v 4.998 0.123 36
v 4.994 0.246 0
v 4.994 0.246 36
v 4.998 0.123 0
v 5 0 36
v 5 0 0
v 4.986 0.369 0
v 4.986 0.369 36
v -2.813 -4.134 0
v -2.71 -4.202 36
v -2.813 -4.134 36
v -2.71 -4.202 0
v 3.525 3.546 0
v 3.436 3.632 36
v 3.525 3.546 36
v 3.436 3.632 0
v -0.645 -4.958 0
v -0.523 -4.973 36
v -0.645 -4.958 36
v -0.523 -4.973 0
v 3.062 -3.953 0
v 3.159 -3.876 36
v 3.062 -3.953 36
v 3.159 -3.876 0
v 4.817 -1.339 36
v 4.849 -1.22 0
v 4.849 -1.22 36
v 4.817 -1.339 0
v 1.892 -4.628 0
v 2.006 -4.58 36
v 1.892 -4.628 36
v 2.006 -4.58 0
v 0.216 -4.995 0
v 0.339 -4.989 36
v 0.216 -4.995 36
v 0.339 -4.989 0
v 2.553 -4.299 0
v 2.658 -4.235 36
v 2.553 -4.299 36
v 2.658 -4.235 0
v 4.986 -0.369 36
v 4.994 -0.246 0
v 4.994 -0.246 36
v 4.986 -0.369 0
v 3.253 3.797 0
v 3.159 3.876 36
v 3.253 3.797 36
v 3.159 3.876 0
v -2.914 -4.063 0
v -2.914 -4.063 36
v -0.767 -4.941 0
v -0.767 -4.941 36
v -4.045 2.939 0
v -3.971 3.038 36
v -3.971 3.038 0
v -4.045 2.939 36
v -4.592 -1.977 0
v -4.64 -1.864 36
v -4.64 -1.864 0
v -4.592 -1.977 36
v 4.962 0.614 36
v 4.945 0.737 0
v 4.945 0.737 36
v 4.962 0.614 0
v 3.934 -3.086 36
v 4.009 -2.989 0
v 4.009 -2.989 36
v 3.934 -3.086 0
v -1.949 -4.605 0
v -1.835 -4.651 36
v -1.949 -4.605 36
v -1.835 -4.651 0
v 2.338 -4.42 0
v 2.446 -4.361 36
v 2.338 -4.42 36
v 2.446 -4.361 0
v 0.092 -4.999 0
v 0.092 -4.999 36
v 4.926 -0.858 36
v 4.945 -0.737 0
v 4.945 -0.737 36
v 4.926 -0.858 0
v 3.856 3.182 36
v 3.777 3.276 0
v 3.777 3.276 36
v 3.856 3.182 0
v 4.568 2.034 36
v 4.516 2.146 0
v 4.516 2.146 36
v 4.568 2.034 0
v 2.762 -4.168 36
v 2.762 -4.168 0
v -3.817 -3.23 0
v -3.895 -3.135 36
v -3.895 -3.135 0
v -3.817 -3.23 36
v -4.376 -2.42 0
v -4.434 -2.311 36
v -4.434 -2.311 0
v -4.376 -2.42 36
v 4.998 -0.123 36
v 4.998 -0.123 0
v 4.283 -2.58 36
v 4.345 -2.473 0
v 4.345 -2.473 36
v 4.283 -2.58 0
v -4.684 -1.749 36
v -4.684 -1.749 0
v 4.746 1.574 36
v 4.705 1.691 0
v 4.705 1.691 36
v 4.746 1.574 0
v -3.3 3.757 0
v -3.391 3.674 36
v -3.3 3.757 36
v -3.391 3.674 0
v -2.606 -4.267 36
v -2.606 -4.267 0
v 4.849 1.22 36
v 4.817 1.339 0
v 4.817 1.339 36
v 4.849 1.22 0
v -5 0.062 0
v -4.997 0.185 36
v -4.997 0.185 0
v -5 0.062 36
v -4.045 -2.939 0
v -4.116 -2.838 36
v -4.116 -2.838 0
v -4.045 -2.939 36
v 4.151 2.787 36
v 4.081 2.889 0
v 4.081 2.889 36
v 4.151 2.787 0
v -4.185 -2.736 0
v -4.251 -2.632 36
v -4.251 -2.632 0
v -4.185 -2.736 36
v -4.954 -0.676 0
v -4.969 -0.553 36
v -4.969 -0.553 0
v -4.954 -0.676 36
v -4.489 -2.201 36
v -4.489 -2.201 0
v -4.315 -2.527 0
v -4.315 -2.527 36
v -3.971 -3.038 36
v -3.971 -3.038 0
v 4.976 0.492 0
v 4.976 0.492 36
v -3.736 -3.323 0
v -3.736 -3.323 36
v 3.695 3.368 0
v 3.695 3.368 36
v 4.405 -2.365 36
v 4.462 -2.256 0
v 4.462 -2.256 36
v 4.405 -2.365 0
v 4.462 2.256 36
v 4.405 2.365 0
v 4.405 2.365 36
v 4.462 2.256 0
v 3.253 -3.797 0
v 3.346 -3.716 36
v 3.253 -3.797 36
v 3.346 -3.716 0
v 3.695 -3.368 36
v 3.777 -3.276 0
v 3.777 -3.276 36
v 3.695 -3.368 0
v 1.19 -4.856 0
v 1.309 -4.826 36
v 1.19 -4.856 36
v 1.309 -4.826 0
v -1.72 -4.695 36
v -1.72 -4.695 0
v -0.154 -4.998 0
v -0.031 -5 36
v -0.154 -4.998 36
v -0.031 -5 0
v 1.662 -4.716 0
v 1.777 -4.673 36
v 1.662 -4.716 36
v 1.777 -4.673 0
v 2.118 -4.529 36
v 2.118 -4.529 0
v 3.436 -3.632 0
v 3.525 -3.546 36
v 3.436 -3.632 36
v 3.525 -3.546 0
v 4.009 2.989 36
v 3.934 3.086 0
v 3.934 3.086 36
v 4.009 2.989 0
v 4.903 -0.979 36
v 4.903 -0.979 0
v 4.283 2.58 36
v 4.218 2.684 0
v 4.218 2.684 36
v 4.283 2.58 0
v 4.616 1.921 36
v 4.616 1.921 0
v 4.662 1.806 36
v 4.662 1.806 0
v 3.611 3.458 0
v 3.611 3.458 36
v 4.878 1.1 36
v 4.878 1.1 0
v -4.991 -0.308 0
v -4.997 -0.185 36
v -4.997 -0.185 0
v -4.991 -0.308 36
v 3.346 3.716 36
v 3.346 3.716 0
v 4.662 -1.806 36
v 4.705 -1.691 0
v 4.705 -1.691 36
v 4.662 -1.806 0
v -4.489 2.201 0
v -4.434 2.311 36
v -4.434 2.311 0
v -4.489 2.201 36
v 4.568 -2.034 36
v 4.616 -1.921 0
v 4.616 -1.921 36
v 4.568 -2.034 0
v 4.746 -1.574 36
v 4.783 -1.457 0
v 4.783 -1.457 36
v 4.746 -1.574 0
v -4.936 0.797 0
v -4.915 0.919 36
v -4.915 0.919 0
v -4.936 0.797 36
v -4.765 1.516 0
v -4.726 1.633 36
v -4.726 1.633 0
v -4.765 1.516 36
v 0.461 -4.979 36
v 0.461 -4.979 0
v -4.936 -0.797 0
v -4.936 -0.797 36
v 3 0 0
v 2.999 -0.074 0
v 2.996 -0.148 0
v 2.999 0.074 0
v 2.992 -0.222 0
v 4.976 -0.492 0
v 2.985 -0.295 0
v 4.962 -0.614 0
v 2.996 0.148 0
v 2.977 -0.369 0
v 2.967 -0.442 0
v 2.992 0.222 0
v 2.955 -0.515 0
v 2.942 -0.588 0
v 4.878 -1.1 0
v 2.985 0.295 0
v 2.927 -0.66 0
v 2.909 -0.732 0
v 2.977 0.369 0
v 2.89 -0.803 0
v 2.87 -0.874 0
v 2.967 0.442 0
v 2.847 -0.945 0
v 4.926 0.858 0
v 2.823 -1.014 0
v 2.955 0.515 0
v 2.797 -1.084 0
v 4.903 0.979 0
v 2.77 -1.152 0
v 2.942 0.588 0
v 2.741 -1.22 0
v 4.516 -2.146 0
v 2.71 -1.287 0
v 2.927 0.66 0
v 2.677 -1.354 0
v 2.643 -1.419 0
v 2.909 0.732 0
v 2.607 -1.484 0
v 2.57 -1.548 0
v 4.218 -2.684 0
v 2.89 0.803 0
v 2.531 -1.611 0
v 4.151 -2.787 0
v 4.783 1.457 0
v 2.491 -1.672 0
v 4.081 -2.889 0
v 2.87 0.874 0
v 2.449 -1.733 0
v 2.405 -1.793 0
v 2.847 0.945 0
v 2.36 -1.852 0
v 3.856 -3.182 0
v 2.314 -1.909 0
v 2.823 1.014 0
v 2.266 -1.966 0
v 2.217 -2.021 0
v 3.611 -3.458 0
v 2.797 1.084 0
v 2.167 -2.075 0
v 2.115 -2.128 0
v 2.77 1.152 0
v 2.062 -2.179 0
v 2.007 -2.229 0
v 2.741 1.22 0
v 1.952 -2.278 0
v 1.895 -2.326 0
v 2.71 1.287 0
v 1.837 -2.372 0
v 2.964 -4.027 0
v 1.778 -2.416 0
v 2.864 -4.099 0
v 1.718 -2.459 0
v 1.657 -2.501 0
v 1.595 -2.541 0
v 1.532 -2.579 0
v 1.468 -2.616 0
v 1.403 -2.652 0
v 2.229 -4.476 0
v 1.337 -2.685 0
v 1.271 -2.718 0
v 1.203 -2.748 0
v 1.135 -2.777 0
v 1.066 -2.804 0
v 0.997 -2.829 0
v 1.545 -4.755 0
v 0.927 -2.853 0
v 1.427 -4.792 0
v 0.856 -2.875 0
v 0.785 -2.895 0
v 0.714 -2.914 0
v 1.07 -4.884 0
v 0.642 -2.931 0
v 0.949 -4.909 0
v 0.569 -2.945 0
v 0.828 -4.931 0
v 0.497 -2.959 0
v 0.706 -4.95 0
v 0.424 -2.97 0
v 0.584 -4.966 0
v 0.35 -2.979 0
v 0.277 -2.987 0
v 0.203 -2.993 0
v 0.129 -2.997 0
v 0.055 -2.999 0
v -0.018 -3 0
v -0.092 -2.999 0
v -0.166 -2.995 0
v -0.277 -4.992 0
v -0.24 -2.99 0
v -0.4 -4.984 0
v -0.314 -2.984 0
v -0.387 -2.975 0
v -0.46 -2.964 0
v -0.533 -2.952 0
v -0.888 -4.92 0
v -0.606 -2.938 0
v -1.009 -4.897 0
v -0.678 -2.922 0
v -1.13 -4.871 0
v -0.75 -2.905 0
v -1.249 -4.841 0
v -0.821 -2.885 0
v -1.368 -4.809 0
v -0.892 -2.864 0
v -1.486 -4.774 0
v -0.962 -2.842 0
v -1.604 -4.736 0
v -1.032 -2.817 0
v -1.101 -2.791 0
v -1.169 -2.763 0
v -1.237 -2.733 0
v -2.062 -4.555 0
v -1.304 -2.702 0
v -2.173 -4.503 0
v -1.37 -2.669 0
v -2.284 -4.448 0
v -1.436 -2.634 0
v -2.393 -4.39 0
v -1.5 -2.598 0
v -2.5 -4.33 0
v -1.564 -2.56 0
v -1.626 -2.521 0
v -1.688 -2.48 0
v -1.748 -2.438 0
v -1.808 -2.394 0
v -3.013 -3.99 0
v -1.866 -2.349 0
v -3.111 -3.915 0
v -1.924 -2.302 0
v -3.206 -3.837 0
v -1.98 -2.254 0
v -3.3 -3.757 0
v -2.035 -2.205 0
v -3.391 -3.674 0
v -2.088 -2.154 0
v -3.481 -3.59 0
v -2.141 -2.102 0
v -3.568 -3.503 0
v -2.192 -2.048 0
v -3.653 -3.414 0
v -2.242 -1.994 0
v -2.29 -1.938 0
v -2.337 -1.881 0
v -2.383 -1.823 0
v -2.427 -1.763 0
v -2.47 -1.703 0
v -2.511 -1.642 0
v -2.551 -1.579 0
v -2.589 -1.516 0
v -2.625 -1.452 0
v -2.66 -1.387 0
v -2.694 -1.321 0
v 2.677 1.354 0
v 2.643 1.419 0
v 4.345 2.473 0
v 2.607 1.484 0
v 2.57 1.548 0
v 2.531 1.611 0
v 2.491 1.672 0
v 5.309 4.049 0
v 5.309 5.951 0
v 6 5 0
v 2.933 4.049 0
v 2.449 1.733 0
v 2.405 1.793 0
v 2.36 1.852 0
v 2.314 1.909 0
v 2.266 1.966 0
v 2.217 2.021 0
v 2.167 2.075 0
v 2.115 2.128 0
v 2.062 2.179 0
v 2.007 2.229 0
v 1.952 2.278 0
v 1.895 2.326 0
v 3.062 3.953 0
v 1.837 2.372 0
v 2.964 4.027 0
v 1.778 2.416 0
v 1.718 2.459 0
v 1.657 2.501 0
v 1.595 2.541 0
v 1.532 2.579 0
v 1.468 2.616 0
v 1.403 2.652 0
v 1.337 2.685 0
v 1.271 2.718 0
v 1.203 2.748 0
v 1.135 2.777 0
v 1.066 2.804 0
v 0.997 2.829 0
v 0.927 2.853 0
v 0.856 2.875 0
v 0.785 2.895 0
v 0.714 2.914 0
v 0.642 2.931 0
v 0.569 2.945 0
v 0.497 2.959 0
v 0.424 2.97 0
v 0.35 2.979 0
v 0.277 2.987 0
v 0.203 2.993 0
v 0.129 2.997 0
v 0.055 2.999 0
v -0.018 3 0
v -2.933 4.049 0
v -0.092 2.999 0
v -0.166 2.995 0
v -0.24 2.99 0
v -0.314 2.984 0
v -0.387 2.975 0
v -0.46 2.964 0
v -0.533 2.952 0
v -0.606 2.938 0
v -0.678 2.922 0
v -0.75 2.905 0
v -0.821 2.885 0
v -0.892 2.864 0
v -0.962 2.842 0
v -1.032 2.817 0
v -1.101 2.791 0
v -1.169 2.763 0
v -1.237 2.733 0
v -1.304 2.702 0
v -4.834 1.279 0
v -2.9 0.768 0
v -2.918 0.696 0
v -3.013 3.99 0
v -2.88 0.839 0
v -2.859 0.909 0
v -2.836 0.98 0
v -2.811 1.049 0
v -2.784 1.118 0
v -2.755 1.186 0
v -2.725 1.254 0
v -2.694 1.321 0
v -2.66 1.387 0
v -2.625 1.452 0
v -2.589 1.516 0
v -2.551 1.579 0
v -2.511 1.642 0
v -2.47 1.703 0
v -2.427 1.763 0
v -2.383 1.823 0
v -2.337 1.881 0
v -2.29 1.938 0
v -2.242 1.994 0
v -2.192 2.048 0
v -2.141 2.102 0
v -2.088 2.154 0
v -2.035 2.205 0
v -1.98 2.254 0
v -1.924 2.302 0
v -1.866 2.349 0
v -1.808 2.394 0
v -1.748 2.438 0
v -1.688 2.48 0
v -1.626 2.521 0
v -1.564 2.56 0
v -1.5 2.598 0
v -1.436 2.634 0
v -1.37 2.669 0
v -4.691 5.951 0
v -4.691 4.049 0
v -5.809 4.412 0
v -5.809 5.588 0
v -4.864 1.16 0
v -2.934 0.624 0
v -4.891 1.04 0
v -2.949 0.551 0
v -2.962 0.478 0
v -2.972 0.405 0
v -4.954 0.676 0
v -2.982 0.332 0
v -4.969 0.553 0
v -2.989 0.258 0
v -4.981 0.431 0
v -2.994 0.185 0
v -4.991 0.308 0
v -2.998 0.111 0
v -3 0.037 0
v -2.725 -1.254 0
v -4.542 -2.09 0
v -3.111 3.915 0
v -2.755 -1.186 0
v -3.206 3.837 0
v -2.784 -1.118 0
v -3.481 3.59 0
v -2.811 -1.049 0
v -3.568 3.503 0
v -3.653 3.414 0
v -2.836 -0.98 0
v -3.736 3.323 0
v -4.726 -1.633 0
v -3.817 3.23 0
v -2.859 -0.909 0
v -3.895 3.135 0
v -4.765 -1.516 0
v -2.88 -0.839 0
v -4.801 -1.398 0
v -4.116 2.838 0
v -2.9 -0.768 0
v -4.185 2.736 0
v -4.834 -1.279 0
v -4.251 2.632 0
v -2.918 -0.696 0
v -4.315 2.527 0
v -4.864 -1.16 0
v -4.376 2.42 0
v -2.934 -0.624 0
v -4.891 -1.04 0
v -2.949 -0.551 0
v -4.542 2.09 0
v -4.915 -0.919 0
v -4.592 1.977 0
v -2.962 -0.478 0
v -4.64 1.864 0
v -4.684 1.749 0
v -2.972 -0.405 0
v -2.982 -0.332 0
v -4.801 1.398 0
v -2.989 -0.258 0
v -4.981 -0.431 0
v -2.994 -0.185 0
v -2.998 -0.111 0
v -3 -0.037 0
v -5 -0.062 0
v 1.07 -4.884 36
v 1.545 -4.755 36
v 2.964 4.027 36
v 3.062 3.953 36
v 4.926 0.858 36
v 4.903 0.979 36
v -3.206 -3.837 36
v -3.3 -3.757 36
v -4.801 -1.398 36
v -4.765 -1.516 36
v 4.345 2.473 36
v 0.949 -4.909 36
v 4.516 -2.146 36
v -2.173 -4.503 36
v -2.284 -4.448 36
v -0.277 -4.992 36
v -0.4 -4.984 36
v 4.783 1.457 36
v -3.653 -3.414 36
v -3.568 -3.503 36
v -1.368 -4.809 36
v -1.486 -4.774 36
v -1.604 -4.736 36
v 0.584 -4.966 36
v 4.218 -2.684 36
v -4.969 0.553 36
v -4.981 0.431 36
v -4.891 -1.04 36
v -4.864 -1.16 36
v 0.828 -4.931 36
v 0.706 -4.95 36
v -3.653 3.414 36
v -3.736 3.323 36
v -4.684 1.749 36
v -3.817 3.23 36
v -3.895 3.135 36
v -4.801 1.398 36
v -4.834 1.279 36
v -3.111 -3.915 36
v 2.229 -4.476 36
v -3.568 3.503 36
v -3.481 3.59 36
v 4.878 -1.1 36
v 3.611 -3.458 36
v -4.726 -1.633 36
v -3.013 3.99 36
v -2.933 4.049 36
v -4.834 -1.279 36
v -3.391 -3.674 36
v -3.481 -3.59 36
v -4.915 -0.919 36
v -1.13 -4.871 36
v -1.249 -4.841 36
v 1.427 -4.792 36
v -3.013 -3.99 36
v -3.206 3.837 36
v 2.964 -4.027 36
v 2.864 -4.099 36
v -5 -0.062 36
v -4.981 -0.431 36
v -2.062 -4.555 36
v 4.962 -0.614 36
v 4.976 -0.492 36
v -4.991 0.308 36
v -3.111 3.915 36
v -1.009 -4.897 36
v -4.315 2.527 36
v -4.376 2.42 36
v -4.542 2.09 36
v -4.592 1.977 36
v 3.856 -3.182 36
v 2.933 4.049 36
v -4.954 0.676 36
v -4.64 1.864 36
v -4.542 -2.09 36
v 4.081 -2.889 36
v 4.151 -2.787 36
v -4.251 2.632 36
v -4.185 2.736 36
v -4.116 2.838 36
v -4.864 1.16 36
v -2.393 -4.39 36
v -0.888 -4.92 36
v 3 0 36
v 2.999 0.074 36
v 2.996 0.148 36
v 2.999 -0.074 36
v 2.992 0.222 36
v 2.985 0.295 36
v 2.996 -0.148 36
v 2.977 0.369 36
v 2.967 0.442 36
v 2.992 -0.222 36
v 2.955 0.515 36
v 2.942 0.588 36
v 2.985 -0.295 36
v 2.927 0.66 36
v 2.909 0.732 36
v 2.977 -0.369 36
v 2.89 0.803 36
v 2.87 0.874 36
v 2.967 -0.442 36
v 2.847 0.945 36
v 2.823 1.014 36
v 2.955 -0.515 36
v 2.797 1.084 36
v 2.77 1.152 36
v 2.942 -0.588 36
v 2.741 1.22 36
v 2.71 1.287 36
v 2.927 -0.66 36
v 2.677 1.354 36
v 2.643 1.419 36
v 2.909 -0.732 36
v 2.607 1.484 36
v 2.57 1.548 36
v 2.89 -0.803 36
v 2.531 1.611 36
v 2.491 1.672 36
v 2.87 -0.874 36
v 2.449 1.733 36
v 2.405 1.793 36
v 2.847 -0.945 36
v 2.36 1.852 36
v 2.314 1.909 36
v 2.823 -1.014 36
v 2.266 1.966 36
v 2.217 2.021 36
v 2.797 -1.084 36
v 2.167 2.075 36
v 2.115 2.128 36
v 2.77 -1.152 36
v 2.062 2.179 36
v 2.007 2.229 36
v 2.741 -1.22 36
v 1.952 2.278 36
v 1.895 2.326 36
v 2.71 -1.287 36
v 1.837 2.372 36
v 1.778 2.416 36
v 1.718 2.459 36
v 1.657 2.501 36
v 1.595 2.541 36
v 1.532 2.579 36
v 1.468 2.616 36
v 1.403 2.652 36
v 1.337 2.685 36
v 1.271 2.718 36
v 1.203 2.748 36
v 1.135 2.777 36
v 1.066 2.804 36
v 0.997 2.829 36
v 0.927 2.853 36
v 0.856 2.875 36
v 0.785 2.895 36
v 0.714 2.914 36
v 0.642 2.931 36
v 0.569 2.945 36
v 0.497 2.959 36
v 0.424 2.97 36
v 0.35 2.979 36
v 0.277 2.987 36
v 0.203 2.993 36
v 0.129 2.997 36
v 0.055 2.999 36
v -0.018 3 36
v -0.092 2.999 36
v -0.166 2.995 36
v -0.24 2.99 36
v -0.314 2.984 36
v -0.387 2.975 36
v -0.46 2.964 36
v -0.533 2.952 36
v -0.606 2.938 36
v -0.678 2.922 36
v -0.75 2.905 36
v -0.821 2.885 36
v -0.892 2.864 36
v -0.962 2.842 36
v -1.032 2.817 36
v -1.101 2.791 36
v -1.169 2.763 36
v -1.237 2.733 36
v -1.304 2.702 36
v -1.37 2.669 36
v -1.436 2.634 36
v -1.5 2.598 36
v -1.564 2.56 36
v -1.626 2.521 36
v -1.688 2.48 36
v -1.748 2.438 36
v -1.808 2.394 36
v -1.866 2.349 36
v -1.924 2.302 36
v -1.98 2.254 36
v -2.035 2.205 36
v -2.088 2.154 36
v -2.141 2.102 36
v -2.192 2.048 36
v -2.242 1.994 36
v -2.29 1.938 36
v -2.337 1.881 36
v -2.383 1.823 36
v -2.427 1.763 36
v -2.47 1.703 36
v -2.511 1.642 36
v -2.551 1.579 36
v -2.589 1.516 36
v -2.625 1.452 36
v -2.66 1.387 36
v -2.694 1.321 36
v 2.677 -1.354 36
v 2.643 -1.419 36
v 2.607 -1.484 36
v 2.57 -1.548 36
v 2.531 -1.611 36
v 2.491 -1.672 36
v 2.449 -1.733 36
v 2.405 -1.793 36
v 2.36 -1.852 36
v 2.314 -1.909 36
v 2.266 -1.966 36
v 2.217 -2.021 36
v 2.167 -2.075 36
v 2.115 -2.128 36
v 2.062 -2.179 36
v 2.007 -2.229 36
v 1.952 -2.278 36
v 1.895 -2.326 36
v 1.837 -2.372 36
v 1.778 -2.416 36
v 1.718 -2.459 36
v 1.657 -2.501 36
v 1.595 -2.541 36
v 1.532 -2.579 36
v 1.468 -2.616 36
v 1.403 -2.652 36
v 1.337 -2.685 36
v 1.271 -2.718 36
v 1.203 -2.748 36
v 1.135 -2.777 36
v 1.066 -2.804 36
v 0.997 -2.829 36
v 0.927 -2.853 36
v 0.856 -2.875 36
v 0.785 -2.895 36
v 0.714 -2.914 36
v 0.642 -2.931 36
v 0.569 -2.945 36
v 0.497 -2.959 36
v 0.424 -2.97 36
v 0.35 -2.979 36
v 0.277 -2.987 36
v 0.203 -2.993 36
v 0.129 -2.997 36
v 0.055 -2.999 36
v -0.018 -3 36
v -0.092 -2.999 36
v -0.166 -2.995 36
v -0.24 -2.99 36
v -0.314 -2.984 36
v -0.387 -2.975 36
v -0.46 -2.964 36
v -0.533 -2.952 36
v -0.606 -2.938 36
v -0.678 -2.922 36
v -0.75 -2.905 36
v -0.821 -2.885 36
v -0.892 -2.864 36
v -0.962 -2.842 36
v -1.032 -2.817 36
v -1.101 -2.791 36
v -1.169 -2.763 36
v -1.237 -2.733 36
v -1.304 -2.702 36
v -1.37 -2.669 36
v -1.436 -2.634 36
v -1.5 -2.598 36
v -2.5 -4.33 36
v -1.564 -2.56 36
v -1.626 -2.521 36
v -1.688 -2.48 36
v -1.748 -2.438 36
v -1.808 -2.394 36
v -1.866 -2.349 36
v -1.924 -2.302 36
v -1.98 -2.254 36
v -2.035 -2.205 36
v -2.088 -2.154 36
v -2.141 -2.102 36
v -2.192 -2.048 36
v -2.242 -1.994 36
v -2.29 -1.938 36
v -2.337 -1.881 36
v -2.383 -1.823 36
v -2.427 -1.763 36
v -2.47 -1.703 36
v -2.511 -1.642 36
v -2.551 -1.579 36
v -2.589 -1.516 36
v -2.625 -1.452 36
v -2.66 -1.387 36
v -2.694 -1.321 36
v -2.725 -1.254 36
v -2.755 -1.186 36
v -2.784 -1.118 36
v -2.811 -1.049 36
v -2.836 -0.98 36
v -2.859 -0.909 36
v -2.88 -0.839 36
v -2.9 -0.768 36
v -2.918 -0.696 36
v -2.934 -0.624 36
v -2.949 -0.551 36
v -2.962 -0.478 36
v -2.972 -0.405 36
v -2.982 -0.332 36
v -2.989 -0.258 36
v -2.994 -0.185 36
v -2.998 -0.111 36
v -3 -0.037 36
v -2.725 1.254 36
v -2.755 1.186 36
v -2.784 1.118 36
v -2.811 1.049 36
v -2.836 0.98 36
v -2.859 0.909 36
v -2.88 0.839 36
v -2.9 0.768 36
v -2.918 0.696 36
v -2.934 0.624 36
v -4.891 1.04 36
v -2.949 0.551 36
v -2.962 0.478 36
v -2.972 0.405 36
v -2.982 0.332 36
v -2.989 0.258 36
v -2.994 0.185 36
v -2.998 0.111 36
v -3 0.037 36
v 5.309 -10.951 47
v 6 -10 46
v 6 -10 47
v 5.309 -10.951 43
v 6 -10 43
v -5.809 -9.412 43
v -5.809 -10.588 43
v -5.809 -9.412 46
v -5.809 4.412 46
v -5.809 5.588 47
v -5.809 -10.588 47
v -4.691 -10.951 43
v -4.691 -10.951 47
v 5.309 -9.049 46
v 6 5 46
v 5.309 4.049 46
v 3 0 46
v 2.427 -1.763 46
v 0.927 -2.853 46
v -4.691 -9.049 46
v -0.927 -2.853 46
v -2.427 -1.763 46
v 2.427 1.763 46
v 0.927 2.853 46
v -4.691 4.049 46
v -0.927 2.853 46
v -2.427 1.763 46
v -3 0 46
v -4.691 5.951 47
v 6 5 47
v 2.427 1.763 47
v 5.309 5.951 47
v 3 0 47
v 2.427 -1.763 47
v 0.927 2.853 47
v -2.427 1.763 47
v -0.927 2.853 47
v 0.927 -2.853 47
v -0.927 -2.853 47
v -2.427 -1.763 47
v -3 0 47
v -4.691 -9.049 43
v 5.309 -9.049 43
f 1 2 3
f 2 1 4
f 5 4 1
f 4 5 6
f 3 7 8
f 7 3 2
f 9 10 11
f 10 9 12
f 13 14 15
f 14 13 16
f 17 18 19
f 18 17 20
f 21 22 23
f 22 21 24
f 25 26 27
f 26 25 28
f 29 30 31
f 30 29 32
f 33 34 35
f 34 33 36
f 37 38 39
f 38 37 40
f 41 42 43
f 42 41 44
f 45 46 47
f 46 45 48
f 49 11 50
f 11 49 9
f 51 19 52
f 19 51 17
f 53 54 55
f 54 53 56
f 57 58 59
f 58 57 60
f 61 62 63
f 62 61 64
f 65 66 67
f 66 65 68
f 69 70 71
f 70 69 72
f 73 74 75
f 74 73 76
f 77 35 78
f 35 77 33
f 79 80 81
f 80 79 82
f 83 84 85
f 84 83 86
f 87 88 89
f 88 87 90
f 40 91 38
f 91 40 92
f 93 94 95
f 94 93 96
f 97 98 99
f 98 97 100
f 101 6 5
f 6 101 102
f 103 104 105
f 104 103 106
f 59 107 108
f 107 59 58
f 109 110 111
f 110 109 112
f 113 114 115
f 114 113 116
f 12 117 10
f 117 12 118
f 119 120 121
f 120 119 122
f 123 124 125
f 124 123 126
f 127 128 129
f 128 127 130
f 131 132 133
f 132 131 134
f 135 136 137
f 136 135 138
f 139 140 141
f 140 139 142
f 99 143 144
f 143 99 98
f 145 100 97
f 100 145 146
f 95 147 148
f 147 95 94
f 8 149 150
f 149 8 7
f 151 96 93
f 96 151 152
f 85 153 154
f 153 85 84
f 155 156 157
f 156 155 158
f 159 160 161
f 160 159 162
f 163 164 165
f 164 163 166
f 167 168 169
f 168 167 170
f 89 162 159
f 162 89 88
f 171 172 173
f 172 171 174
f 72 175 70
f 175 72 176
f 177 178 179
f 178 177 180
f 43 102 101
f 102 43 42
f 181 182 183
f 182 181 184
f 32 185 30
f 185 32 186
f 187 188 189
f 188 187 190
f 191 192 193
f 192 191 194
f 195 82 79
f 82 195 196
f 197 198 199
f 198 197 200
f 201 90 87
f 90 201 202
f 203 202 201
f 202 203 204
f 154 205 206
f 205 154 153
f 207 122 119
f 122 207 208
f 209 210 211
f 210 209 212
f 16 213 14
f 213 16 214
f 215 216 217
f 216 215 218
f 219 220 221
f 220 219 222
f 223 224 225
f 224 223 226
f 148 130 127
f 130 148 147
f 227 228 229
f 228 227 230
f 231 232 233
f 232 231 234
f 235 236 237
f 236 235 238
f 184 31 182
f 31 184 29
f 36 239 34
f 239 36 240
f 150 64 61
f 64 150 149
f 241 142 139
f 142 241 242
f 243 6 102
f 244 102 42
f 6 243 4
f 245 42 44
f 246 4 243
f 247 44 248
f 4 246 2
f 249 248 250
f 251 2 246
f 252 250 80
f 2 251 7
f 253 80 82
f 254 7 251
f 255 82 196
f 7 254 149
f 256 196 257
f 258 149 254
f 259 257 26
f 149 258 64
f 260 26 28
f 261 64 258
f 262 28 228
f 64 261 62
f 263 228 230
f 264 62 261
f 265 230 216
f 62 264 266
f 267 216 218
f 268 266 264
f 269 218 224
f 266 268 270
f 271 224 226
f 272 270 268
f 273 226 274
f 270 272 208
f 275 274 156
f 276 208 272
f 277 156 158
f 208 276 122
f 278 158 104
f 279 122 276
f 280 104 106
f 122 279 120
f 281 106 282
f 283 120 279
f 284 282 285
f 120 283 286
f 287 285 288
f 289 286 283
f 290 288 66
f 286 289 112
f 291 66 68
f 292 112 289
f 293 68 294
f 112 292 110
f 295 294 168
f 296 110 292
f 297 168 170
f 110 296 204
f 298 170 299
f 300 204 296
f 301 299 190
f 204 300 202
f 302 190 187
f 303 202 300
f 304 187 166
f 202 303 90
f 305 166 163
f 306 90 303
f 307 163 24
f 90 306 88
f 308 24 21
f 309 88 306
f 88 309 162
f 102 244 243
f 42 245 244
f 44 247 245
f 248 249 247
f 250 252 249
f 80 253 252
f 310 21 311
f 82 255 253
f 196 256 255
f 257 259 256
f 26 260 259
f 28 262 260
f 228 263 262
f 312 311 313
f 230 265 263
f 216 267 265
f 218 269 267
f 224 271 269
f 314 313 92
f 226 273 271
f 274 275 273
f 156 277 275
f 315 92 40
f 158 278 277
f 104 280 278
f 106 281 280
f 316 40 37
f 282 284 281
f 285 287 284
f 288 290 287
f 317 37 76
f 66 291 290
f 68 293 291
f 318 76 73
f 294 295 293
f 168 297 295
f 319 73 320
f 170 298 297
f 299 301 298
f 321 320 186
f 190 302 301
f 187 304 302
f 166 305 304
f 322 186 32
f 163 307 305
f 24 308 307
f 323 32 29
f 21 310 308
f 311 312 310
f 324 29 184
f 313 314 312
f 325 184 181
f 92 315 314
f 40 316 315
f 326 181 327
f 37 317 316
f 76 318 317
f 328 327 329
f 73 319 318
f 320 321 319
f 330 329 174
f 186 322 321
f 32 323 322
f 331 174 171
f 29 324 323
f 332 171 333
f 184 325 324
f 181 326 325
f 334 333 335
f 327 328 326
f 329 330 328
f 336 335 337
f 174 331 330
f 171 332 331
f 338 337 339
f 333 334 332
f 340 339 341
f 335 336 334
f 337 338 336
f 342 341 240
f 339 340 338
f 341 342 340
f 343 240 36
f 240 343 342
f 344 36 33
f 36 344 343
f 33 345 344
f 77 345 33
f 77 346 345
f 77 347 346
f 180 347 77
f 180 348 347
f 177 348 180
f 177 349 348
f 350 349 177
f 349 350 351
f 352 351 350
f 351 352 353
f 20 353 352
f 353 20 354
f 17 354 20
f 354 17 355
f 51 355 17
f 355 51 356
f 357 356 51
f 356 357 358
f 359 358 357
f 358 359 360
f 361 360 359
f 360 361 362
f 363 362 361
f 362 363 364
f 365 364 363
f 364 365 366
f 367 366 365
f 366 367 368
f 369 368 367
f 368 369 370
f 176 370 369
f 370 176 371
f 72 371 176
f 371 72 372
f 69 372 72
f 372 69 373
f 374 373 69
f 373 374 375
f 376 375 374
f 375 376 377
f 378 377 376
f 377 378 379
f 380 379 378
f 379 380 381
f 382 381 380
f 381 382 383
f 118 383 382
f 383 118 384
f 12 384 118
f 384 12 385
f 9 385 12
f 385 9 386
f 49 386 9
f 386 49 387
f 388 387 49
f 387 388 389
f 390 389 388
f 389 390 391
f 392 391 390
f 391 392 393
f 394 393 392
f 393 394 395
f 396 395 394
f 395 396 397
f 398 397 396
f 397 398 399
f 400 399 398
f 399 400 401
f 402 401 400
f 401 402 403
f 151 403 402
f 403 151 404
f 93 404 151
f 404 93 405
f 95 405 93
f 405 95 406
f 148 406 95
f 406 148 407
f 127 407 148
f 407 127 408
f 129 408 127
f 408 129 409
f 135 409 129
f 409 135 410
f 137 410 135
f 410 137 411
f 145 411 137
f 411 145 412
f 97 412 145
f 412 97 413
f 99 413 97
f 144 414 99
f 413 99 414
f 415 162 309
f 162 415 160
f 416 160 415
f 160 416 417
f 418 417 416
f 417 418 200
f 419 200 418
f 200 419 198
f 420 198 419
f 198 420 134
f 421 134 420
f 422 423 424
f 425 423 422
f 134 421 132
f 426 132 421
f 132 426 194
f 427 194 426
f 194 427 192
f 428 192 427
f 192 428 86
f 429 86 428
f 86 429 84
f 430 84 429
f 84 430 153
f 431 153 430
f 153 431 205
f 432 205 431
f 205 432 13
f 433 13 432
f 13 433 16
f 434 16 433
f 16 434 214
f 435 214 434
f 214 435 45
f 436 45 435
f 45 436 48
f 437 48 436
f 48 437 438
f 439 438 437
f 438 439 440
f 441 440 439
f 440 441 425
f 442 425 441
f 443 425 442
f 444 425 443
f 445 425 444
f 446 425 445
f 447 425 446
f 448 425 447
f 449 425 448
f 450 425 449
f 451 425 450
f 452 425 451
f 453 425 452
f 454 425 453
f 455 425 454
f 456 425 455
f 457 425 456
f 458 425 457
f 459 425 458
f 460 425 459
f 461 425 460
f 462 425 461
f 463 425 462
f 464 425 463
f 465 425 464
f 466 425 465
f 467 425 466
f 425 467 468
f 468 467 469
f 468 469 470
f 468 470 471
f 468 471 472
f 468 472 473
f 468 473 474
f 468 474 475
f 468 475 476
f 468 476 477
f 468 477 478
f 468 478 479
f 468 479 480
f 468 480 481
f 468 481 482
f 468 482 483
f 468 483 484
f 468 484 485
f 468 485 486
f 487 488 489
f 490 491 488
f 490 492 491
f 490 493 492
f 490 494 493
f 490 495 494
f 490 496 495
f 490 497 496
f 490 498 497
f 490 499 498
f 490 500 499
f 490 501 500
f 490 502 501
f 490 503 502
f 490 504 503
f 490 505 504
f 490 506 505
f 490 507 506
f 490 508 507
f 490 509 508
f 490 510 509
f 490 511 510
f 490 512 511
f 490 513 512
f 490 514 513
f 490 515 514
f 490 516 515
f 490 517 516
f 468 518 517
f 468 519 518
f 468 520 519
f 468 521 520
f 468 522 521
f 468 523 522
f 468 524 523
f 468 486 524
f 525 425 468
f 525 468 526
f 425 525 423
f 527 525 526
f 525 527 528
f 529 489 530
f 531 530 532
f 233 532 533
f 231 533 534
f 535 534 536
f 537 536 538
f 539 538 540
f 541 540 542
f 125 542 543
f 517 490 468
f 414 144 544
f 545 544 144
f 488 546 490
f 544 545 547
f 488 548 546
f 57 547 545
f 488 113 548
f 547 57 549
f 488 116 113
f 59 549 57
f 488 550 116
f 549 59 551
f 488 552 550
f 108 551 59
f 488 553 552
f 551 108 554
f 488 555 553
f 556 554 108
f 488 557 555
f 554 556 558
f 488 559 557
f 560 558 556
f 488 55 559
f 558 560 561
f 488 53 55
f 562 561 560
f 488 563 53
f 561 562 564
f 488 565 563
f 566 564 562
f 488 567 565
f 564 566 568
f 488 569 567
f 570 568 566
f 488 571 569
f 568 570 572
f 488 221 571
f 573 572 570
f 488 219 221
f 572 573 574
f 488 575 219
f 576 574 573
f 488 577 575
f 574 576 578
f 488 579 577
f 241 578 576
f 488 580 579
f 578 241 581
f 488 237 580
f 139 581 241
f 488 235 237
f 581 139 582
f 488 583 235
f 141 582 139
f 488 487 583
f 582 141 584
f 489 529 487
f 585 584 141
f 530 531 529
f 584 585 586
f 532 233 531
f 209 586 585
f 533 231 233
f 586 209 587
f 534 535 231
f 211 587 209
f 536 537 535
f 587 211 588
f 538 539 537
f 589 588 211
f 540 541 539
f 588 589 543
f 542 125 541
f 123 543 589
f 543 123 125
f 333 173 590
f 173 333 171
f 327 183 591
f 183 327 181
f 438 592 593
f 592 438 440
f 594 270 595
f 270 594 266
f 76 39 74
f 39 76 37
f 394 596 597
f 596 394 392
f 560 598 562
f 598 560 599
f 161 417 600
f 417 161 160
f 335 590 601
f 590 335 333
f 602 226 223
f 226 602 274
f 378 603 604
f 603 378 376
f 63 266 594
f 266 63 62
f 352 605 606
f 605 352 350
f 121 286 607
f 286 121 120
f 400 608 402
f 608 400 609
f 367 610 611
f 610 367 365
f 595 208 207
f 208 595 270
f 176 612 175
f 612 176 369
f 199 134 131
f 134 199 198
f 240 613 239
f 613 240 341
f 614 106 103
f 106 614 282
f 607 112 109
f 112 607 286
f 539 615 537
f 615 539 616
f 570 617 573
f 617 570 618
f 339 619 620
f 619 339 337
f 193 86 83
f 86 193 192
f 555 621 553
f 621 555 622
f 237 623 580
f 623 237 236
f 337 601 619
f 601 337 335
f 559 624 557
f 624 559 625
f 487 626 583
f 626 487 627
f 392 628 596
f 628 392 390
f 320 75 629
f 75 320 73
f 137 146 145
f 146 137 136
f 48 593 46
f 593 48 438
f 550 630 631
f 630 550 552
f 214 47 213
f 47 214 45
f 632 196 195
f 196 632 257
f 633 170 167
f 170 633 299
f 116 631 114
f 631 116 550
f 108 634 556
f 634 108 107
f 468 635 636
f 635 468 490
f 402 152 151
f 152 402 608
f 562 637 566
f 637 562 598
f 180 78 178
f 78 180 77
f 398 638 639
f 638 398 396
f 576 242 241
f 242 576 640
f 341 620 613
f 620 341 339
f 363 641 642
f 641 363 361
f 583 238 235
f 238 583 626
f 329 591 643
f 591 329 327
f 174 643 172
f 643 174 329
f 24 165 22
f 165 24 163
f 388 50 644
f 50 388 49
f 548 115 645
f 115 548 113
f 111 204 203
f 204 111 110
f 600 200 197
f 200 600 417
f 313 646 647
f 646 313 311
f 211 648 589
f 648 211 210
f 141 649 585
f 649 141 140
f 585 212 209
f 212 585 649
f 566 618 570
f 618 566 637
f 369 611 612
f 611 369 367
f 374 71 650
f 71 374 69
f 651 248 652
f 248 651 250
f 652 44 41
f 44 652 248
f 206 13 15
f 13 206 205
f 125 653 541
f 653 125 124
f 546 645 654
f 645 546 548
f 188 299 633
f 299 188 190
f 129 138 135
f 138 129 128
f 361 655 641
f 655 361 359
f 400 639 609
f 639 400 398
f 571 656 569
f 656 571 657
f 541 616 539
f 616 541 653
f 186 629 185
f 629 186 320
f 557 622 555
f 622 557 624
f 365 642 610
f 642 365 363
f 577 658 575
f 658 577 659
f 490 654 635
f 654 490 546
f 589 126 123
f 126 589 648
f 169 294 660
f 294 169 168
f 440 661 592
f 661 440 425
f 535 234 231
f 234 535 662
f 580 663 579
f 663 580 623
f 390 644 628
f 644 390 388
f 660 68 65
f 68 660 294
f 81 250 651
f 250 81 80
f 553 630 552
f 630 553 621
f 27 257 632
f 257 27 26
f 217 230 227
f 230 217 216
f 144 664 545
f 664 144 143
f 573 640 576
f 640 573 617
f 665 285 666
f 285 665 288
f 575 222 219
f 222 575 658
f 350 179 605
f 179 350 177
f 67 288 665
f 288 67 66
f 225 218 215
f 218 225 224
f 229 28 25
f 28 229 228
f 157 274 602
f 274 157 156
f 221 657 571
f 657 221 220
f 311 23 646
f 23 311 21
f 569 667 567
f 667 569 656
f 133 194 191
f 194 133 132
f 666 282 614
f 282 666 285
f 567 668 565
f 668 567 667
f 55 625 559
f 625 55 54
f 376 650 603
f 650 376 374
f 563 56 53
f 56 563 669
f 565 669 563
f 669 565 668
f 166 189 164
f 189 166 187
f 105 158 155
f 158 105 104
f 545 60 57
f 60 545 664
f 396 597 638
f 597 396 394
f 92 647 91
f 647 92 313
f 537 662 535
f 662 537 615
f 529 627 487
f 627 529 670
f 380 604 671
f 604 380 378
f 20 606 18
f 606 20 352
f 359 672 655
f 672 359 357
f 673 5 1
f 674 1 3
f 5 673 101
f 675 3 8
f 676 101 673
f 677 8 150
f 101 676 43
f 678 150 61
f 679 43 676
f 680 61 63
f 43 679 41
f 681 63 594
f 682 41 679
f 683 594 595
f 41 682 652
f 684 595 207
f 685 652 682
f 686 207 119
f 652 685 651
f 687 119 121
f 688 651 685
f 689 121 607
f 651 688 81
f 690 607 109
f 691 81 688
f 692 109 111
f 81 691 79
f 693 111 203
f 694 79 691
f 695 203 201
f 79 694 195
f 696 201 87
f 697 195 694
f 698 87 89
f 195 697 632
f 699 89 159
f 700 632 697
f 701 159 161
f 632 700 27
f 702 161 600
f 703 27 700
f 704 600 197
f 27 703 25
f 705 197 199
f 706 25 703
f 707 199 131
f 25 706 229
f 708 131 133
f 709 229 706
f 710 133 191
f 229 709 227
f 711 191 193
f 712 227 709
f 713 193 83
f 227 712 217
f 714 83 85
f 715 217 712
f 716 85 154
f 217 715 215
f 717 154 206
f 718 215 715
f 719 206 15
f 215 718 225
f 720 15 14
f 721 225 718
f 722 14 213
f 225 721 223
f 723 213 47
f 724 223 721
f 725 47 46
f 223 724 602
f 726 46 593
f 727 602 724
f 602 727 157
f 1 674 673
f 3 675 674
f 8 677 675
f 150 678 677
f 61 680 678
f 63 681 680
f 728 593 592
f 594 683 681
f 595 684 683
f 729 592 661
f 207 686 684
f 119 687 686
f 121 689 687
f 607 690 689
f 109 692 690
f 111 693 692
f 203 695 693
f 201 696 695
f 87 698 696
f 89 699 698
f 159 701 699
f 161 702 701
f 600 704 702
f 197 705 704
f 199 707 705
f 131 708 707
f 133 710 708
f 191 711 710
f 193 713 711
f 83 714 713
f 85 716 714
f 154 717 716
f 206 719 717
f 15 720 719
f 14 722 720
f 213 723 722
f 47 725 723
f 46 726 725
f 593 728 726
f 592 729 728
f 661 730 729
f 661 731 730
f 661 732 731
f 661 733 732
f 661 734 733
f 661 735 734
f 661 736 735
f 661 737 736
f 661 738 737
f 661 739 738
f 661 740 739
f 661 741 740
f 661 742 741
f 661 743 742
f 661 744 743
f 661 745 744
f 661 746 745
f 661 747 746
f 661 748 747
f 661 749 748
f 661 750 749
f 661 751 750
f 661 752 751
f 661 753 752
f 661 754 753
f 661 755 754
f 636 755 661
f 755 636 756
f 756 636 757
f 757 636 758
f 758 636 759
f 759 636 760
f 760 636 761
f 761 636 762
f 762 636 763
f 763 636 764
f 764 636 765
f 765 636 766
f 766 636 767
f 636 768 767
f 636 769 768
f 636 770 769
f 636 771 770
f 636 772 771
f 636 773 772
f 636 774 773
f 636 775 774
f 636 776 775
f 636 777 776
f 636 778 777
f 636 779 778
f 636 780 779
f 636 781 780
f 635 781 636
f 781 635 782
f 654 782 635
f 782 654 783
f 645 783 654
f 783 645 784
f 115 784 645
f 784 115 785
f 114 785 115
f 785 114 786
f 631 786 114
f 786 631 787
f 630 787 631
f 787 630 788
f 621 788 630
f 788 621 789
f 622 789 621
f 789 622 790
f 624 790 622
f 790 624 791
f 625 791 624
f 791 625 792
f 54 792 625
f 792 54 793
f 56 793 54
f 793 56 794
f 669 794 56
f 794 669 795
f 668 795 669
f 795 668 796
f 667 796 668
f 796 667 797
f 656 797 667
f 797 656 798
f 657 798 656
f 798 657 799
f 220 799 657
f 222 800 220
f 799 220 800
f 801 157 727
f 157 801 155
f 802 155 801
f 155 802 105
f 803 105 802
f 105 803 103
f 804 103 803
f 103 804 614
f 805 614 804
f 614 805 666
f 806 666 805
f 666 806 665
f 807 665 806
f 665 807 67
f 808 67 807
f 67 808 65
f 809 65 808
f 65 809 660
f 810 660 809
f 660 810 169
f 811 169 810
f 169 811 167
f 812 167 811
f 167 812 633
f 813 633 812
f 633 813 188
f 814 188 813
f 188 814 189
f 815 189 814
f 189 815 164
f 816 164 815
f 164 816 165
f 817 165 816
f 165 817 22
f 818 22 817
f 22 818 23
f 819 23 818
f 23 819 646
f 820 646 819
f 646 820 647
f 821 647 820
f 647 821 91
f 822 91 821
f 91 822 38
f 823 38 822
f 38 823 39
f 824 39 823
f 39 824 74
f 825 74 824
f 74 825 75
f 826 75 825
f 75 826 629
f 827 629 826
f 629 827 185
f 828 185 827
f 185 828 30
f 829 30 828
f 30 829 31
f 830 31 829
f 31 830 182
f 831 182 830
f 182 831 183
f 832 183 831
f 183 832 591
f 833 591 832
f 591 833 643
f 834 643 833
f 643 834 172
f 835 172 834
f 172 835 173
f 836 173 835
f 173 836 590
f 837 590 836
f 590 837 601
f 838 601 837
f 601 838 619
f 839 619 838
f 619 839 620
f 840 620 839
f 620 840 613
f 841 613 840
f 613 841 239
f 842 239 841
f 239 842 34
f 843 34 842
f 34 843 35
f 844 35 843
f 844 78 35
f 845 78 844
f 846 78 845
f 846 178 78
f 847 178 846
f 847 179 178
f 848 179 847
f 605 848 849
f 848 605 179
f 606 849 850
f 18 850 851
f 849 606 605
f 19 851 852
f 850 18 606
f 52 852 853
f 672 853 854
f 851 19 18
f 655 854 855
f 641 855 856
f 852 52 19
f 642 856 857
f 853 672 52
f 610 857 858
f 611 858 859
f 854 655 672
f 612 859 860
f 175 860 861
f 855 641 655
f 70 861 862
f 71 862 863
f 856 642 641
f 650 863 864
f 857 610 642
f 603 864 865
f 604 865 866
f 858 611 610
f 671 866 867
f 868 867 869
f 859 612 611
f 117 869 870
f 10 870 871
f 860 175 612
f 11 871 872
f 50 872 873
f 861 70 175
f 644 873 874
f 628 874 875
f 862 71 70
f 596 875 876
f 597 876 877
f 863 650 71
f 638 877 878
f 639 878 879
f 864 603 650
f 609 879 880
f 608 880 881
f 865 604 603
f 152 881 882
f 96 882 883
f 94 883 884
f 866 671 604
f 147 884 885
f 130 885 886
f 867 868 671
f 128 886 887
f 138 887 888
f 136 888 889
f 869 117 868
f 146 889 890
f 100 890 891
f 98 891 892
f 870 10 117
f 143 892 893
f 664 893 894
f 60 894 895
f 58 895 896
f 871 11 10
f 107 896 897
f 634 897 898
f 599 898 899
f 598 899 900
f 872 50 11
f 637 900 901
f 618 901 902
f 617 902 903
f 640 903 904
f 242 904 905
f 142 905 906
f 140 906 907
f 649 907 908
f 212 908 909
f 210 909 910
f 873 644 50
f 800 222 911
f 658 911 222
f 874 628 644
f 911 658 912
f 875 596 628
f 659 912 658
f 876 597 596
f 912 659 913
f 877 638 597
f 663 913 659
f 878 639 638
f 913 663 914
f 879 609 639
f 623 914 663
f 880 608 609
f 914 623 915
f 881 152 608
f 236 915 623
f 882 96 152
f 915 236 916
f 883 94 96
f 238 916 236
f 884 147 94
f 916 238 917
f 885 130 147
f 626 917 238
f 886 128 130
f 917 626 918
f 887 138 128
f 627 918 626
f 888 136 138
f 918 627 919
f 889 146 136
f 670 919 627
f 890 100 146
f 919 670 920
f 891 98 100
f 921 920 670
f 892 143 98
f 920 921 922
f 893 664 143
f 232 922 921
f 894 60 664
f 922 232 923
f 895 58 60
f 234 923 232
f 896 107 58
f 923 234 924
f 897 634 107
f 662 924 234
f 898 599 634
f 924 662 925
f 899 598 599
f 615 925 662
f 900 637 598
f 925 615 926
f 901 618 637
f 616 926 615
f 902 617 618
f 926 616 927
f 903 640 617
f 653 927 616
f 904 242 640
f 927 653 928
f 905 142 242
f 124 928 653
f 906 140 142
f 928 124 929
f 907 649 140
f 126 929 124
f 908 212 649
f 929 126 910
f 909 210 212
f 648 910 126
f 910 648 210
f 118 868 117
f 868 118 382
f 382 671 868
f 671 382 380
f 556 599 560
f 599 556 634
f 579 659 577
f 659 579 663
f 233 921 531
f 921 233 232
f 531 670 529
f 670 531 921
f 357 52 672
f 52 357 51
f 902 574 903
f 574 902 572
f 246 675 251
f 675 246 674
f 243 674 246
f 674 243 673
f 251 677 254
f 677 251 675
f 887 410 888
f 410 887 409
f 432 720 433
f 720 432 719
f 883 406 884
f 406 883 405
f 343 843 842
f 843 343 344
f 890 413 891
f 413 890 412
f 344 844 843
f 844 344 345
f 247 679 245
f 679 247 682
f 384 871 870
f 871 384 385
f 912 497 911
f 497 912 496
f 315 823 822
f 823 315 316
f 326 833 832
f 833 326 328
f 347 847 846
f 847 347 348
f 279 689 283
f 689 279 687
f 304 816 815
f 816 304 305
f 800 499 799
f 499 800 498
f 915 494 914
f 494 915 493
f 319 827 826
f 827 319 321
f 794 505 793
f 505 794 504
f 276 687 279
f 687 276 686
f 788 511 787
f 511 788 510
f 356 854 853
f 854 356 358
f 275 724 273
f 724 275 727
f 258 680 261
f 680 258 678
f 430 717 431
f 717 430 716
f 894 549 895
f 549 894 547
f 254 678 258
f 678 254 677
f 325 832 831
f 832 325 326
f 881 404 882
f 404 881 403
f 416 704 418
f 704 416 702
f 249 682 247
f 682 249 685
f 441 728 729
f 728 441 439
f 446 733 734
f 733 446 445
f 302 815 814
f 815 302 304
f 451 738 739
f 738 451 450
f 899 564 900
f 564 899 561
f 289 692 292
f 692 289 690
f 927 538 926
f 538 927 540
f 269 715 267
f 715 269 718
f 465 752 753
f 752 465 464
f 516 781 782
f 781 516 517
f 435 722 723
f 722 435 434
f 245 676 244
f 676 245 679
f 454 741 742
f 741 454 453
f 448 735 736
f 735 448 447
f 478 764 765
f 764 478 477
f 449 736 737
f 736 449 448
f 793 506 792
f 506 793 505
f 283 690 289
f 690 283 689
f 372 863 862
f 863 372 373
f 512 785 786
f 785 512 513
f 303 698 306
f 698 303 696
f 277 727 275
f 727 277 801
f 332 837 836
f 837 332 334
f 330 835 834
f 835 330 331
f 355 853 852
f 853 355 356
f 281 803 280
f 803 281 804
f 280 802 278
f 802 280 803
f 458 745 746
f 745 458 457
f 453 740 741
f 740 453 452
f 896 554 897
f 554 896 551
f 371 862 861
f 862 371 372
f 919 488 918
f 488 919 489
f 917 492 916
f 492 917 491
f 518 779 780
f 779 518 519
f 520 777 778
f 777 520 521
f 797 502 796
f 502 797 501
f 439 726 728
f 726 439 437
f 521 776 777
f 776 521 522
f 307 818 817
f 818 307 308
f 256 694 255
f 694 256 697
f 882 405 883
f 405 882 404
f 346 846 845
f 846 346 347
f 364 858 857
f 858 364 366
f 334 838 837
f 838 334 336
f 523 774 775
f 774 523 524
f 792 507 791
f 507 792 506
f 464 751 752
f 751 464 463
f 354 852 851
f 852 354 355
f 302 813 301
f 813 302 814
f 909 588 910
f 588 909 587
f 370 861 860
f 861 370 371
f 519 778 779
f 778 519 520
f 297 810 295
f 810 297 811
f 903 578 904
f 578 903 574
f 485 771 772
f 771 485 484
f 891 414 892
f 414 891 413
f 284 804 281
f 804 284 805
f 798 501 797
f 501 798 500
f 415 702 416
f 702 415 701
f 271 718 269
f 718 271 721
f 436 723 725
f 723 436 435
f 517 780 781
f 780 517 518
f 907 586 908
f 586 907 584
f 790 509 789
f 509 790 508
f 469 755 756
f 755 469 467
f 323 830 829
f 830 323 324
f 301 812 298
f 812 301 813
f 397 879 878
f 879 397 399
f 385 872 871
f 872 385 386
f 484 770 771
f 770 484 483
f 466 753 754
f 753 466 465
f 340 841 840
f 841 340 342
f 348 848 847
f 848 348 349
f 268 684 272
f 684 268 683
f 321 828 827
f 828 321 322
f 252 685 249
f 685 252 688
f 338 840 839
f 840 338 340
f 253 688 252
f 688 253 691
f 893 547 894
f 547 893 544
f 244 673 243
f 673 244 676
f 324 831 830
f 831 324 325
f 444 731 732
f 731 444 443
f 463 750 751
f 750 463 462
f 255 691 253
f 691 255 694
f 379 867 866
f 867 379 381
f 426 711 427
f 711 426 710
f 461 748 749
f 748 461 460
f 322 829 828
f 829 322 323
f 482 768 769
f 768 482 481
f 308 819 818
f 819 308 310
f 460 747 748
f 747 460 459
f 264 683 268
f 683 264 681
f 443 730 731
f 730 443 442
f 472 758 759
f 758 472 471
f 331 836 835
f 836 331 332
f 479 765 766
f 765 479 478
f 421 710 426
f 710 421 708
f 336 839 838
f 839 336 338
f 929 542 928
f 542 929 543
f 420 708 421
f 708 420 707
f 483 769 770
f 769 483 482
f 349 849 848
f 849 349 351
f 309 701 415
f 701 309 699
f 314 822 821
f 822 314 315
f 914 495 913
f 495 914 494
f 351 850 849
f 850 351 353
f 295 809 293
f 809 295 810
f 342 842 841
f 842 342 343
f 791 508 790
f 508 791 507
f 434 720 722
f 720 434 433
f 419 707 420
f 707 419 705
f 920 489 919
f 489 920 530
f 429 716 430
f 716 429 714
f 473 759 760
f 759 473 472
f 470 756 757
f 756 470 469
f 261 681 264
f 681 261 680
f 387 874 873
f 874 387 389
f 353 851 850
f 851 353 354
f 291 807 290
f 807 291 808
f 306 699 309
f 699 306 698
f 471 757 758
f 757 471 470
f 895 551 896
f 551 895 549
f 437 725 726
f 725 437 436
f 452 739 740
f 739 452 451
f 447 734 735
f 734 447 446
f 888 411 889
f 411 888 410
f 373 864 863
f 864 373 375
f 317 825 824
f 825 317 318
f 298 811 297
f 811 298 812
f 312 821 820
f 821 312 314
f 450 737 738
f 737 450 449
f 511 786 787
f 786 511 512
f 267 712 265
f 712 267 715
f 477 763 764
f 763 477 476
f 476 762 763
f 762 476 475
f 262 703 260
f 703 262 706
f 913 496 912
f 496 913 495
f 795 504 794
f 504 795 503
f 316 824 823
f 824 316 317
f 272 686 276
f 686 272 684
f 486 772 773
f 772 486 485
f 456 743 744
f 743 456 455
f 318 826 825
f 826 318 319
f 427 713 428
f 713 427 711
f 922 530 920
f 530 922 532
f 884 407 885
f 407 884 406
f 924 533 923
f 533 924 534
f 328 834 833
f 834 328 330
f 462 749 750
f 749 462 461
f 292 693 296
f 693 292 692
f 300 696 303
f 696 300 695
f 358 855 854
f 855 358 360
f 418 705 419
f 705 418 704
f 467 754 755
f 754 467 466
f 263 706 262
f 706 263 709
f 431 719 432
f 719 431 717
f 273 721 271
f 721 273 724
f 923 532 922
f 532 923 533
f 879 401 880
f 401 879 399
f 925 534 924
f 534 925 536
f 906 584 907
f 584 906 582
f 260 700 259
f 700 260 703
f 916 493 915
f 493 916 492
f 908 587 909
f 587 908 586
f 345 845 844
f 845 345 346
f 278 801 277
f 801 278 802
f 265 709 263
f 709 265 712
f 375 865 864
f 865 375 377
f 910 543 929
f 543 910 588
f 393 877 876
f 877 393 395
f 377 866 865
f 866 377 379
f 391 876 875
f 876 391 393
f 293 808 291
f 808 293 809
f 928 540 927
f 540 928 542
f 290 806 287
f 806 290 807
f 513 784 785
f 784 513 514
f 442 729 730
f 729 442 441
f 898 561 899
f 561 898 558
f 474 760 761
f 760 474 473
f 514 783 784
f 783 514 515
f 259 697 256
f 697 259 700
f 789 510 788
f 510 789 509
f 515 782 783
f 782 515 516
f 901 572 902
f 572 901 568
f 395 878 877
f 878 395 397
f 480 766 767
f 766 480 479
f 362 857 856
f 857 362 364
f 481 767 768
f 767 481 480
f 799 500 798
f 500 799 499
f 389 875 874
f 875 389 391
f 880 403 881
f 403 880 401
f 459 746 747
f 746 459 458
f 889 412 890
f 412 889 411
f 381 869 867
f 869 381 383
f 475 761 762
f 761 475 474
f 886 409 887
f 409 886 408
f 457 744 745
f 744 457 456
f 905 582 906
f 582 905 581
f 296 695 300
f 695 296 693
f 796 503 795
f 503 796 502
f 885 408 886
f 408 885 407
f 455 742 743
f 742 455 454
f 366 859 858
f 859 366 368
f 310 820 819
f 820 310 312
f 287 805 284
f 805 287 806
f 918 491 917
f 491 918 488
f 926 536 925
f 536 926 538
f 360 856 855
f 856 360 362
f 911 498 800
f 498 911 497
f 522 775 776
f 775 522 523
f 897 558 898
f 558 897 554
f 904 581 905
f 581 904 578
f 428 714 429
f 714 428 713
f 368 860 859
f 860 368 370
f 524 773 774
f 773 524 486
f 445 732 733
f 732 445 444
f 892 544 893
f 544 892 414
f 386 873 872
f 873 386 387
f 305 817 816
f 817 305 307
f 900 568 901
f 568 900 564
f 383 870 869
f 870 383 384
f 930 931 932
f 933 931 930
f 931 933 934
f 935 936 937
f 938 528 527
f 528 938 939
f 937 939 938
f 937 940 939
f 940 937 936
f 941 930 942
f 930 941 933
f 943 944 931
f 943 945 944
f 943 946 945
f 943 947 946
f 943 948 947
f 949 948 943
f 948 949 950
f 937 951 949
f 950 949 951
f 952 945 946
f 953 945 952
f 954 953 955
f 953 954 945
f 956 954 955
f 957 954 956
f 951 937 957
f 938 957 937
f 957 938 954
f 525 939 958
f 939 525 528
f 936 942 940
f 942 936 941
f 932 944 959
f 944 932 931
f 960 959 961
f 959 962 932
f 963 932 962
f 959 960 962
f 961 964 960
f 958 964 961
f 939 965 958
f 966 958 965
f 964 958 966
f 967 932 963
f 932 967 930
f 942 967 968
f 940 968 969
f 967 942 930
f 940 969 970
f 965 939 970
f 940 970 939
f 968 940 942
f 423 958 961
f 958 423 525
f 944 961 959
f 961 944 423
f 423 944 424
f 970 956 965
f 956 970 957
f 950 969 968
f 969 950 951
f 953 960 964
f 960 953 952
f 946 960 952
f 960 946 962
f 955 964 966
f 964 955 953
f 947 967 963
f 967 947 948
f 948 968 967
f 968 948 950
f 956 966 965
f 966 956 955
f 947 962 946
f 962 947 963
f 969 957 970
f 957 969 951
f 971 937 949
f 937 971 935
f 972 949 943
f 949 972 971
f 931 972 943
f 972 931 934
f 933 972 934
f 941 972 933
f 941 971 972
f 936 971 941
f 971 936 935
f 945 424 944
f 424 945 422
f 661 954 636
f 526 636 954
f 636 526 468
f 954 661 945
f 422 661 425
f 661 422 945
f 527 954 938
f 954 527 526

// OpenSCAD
// file: endoscope_collar.scad
$fn=255;

endo_diameter = 6/2;
wall_thickness = 2 + endo_diameter;
height = 36;

module collar(endo_diameter, wall_thickness, height){
	difference(){
		cylinder(height, wall_thickness, wall_thickness);
		cylinder(height, endo_diameter, endo_diameter);
	}
}

collar(endo_diameter, wall_thickness, height);
// main file
use<endoscope_collar.scad>

//Collar
collar_endo_diameter = 6/2;
collar_wall_thickness = 2 + collar_endo_diameter;
collar_height = 36;

//Mounting plate
plate_x = 10;
plate_y = 0;
plate_z = 46;
plate_translate = [-5, collar_wall_thickness, 0];
plate_bottom_left = [0, 0, 0];
plate_bottom_right = [plate_x, 0, 0];
plate_top_left = [0, 0, plate_z];
plate_top_right = [plate_x, 0, plate_z];
plate_dimentions = [
plate_bottom_left,
plate_bottom_right,
plate_top_left,
plate_top_right
];

//Hook top
hook_top_x = 10;
hook_top_y = -15;
hook_top_z = 46;
hook_top_translate = [-5, collar_wall_thickness, plate_z];
hook_top_hole_translate = [hook_top_x/2, -5, 0];
hook_top_back_left = [0, 0, 0];
hook_top_back_right = [hook_top_x, 0, 0];
hook_top_forward_left = [0, hook_top_y, 0];
hook_top_forward_right = [hook_top_x, hook_top_y, 0];
hook_top_dimentions = [
hook_top_back_left,
hook_top_back_right,
hook_top_forward_left,
hook_top_forward_right
];

//Hook lip
hook_lip_x = 10;
hook_lip_y = 0;
hook_lip_z = 3;
hook_lip_thickness = 10;
hook_lip_translate = [-5, collar_wall_thickness + hook_top_y, hook_top_z - hook_lip_z];
hook_lip_bottom_left = [0, 0, 0];
hook_lip_bottom_right = [hook_lip_x, 0, 0];
hook_lip_top_left = [0, 0, hook_lip_z];
hook_lip_top_right = [hook_lip_x, 0, hook_lip_z];
hook_lip_dimentions = [
hook_lip_bottom_left,
hook_lip_bottom_right,
hook_lip_top_left,
hook_lip_top_right
];

translate(hook_lip_translate){
	hull(){
		for(dimention = hook_lip_dimentions){
			translate(dimention){
				cylinder(1);
			}
		}
	}
}

translate(plate_translate){
	hull(){
		for(dimention = plate_dimentions){
			translate(dimention){
				cylinder(1);
			}
		}
	}
}

translate(hook_top_translate){
	difference(){
		hull(){
			for(dimention = hook_top_dimentions){
				translate(dimention){
					cylinder(1);
				}
			}
		}
		translate(hook_top_hole_translate){
			cylinder(collar_height, collar_endo_diameter, collar_endo_diameter);
		}
	}
}

collar(collar_endo_diameter, collar_wall_thickness, collar_height);
